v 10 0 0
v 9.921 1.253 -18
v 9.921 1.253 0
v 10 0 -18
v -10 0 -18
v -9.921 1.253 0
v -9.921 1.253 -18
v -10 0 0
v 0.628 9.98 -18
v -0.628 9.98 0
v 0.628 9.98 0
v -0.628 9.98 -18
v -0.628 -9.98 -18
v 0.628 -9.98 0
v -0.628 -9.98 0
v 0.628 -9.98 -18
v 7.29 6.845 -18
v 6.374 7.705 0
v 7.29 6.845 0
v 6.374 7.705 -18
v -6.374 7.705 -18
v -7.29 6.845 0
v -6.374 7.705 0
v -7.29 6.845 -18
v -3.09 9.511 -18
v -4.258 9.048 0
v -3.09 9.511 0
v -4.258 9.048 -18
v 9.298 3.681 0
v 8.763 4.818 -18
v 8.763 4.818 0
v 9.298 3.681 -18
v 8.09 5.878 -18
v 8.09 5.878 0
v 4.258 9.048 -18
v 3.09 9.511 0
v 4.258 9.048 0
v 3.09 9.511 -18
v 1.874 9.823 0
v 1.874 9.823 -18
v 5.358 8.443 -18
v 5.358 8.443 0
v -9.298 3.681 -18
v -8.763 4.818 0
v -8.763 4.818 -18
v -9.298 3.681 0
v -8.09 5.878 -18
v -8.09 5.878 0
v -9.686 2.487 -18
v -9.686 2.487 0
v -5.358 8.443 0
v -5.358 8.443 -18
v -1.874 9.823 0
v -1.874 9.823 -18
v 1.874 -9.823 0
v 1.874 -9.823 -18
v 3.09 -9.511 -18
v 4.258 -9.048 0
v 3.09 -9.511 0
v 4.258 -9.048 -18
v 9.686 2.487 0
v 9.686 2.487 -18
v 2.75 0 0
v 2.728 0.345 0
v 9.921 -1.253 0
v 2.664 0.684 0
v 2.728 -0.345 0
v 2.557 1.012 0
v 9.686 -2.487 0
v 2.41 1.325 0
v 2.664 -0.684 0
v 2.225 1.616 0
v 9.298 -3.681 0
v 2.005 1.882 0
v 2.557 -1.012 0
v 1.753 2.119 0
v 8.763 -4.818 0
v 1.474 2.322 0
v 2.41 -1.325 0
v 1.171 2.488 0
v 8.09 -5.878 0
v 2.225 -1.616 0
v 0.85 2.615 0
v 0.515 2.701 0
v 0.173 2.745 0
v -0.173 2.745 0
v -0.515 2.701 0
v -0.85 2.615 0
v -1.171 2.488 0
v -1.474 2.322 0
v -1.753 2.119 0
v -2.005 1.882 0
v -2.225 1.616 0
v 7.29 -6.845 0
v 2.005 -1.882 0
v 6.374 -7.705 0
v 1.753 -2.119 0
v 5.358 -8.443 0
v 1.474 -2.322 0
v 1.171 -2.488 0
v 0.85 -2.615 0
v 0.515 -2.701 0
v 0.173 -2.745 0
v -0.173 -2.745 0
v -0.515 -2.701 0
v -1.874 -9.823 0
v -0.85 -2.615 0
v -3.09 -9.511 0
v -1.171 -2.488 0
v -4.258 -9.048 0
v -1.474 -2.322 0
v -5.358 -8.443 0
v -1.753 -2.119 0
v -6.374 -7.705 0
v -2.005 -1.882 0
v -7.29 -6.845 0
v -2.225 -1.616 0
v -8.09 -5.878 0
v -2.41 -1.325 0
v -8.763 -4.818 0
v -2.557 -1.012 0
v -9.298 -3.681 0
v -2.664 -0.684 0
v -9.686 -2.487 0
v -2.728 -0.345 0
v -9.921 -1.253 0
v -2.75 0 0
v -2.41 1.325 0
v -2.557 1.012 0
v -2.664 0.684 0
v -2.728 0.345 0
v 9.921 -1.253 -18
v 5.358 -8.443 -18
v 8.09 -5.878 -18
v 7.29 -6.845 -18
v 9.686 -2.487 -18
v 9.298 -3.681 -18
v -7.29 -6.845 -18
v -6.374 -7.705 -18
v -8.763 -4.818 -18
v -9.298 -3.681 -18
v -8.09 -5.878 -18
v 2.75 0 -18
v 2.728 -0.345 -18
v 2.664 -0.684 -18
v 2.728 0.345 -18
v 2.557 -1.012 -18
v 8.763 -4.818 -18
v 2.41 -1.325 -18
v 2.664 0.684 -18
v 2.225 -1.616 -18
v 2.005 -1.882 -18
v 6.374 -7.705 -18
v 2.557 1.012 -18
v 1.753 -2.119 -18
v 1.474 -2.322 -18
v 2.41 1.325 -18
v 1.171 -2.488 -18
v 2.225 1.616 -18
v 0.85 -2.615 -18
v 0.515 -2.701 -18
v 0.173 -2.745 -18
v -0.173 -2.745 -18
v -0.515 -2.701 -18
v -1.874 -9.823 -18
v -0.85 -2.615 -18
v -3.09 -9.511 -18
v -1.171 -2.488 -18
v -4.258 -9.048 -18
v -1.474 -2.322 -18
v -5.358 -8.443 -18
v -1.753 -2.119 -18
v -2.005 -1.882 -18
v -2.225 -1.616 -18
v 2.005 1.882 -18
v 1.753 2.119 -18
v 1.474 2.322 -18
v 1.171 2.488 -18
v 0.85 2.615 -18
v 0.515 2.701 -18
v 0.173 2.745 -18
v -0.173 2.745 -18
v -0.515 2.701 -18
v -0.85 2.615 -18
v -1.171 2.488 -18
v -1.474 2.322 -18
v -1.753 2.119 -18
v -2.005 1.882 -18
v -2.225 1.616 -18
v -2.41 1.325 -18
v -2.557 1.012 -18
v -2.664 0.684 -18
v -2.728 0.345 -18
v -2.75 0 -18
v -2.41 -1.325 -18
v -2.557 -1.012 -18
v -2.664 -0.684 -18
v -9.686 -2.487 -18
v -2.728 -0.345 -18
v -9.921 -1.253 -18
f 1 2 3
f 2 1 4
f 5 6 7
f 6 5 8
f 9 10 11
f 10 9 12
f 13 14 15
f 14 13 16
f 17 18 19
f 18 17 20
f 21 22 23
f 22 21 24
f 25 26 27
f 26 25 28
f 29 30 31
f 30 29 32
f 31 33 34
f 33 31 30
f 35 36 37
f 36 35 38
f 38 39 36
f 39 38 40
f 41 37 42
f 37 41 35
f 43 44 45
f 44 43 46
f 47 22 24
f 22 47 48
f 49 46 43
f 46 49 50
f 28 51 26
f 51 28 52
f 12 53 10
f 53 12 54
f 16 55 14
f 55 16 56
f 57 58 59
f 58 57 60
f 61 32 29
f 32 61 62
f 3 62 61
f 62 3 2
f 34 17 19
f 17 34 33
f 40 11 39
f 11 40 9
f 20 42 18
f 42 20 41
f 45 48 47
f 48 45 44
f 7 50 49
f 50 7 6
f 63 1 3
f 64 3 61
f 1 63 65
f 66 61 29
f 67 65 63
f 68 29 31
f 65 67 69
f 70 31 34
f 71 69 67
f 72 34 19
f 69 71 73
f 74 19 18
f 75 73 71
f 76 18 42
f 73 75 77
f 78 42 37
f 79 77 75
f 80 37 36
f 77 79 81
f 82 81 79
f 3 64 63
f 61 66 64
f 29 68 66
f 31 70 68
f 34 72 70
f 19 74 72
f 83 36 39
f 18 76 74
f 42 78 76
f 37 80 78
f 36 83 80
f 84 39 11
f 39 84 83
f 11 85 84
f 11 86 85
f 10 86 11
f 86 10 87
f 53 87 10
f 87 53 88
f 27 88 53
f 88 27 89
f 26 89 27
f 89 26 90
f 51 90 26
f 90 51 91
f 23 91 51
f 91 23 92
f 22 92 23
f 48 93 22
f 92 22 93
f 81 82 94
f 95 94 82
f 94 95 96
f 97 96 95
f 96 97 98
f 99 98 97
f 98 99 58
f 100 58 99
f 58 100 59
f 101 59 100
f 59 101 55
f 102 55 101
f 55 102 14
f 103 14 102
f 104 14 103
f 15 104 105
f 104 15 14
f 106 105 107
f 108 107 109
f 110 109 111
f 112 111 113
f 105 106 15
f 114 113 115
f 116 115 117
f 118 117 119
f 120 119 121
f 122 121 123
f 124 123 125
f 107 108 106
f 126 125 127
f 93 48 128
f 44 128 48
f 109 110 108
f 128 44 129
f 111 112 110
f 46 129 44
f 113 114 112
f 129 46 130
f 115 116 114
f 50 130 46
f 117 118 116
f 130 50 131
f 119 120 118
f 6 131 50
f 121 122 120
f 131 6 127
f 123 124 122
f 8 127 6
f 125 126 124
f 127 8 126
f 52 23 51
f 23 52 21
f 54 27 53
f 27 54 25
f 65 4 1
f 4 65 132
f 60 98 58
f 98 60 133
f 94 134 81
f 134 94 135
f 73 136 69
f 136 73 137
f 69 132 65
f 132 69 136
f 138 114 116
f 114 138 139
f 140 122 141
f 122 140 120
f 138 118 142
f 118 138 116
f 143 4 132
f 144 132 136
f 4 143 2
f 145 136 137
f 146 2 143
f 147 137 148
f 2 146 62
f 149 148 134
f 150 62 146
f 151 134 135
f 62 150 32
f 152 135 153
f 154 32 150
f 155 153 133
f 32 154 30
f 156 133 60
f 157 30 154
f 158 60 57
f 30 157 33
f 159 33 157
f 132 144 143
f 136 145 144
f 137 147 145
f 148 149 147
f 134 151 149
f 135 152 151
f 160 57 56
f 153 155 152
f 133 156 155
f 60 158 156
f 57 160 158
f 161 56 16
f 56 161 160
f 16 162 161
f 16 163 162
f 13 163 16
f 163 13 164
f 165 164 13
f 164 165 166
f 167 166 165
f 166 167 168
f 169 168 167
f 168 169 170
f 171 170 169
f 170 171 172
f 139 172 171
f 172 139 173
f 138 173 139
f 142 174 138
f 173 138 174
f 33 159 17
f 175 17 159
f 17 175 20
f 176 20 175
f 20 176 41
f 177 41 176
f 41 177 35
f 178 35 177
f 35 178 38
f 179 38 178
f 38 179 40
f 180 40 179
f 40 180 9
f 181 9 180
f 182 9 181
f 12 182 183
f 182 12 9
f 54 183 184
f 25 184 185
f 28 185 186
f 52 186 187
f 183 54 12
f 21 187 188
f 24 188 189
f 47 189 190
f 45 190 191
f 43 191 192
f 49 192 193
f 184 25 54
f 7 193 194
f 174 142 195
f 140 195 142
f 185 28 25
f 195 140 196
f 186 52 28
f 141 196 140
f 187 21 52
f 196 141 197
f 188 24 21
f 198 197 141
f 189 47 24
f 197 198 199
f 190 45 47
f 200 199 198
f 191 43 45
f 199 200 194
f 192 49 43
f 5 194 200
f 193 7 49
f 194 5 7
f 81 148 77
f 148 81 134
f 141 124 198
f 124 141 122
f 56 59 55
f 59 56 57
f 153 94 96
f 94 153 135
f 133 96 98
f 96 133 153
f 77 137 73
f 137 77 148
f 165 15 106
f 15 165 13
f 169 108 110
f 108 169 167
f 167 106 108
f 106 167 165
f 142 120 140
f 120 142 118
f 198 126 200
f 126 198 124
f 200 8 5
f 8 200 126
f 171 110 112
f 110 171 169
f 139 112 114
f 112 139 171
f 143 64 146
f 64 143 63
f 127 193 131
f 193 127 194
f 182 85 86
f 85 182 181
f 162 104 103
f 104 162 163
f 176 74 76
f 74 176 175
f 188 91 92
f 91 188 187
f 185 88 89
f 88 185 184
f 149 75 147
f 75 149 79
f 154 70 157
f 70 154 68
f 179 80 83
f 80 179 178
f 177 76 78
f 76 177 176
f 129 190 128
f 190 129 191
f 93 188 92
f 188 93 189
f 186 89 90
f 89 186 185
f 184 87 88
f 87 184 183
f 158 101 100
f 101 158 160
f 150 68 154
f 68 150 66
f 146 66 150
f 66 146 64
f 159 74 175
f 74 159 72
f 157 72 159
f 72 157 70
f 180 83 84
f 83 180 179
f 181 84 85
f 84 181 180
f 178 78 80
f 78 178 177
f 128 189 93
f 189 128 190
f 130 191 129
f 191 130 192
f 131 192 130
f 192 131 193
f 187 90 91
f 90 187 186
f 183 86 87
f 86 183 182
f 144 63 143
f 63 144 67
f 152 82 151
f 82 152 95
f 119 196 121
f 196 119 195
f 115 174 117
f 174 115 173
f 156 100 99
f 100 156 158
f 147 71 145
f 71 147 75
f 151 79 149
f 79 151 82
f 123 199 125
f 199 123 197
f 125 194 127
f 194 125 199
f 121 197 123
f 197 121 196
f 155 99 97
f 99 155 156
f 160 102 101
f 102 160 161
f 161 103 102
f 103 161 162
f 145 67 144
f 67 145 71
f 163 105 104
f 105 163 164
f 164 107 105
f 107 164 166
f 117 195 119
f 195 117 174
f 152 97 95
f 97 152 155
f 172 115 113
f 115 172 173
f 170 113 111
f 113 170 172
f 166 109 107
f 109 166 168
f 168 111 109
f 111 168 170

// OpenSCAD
$fn = 50;


difference() {
	union() {
		translate(v = [0, 0, -18.0000000000]) {
			cylinder(h = 18, r = 10.0000000000);
		}
		cylinder(h = 0, r = 19.0000000000);
	}
	union() {
		#translate(v = [0, 0, -18]) {
			cylinder(h = 18, r = 2.7500000000);
		}
	}
}
